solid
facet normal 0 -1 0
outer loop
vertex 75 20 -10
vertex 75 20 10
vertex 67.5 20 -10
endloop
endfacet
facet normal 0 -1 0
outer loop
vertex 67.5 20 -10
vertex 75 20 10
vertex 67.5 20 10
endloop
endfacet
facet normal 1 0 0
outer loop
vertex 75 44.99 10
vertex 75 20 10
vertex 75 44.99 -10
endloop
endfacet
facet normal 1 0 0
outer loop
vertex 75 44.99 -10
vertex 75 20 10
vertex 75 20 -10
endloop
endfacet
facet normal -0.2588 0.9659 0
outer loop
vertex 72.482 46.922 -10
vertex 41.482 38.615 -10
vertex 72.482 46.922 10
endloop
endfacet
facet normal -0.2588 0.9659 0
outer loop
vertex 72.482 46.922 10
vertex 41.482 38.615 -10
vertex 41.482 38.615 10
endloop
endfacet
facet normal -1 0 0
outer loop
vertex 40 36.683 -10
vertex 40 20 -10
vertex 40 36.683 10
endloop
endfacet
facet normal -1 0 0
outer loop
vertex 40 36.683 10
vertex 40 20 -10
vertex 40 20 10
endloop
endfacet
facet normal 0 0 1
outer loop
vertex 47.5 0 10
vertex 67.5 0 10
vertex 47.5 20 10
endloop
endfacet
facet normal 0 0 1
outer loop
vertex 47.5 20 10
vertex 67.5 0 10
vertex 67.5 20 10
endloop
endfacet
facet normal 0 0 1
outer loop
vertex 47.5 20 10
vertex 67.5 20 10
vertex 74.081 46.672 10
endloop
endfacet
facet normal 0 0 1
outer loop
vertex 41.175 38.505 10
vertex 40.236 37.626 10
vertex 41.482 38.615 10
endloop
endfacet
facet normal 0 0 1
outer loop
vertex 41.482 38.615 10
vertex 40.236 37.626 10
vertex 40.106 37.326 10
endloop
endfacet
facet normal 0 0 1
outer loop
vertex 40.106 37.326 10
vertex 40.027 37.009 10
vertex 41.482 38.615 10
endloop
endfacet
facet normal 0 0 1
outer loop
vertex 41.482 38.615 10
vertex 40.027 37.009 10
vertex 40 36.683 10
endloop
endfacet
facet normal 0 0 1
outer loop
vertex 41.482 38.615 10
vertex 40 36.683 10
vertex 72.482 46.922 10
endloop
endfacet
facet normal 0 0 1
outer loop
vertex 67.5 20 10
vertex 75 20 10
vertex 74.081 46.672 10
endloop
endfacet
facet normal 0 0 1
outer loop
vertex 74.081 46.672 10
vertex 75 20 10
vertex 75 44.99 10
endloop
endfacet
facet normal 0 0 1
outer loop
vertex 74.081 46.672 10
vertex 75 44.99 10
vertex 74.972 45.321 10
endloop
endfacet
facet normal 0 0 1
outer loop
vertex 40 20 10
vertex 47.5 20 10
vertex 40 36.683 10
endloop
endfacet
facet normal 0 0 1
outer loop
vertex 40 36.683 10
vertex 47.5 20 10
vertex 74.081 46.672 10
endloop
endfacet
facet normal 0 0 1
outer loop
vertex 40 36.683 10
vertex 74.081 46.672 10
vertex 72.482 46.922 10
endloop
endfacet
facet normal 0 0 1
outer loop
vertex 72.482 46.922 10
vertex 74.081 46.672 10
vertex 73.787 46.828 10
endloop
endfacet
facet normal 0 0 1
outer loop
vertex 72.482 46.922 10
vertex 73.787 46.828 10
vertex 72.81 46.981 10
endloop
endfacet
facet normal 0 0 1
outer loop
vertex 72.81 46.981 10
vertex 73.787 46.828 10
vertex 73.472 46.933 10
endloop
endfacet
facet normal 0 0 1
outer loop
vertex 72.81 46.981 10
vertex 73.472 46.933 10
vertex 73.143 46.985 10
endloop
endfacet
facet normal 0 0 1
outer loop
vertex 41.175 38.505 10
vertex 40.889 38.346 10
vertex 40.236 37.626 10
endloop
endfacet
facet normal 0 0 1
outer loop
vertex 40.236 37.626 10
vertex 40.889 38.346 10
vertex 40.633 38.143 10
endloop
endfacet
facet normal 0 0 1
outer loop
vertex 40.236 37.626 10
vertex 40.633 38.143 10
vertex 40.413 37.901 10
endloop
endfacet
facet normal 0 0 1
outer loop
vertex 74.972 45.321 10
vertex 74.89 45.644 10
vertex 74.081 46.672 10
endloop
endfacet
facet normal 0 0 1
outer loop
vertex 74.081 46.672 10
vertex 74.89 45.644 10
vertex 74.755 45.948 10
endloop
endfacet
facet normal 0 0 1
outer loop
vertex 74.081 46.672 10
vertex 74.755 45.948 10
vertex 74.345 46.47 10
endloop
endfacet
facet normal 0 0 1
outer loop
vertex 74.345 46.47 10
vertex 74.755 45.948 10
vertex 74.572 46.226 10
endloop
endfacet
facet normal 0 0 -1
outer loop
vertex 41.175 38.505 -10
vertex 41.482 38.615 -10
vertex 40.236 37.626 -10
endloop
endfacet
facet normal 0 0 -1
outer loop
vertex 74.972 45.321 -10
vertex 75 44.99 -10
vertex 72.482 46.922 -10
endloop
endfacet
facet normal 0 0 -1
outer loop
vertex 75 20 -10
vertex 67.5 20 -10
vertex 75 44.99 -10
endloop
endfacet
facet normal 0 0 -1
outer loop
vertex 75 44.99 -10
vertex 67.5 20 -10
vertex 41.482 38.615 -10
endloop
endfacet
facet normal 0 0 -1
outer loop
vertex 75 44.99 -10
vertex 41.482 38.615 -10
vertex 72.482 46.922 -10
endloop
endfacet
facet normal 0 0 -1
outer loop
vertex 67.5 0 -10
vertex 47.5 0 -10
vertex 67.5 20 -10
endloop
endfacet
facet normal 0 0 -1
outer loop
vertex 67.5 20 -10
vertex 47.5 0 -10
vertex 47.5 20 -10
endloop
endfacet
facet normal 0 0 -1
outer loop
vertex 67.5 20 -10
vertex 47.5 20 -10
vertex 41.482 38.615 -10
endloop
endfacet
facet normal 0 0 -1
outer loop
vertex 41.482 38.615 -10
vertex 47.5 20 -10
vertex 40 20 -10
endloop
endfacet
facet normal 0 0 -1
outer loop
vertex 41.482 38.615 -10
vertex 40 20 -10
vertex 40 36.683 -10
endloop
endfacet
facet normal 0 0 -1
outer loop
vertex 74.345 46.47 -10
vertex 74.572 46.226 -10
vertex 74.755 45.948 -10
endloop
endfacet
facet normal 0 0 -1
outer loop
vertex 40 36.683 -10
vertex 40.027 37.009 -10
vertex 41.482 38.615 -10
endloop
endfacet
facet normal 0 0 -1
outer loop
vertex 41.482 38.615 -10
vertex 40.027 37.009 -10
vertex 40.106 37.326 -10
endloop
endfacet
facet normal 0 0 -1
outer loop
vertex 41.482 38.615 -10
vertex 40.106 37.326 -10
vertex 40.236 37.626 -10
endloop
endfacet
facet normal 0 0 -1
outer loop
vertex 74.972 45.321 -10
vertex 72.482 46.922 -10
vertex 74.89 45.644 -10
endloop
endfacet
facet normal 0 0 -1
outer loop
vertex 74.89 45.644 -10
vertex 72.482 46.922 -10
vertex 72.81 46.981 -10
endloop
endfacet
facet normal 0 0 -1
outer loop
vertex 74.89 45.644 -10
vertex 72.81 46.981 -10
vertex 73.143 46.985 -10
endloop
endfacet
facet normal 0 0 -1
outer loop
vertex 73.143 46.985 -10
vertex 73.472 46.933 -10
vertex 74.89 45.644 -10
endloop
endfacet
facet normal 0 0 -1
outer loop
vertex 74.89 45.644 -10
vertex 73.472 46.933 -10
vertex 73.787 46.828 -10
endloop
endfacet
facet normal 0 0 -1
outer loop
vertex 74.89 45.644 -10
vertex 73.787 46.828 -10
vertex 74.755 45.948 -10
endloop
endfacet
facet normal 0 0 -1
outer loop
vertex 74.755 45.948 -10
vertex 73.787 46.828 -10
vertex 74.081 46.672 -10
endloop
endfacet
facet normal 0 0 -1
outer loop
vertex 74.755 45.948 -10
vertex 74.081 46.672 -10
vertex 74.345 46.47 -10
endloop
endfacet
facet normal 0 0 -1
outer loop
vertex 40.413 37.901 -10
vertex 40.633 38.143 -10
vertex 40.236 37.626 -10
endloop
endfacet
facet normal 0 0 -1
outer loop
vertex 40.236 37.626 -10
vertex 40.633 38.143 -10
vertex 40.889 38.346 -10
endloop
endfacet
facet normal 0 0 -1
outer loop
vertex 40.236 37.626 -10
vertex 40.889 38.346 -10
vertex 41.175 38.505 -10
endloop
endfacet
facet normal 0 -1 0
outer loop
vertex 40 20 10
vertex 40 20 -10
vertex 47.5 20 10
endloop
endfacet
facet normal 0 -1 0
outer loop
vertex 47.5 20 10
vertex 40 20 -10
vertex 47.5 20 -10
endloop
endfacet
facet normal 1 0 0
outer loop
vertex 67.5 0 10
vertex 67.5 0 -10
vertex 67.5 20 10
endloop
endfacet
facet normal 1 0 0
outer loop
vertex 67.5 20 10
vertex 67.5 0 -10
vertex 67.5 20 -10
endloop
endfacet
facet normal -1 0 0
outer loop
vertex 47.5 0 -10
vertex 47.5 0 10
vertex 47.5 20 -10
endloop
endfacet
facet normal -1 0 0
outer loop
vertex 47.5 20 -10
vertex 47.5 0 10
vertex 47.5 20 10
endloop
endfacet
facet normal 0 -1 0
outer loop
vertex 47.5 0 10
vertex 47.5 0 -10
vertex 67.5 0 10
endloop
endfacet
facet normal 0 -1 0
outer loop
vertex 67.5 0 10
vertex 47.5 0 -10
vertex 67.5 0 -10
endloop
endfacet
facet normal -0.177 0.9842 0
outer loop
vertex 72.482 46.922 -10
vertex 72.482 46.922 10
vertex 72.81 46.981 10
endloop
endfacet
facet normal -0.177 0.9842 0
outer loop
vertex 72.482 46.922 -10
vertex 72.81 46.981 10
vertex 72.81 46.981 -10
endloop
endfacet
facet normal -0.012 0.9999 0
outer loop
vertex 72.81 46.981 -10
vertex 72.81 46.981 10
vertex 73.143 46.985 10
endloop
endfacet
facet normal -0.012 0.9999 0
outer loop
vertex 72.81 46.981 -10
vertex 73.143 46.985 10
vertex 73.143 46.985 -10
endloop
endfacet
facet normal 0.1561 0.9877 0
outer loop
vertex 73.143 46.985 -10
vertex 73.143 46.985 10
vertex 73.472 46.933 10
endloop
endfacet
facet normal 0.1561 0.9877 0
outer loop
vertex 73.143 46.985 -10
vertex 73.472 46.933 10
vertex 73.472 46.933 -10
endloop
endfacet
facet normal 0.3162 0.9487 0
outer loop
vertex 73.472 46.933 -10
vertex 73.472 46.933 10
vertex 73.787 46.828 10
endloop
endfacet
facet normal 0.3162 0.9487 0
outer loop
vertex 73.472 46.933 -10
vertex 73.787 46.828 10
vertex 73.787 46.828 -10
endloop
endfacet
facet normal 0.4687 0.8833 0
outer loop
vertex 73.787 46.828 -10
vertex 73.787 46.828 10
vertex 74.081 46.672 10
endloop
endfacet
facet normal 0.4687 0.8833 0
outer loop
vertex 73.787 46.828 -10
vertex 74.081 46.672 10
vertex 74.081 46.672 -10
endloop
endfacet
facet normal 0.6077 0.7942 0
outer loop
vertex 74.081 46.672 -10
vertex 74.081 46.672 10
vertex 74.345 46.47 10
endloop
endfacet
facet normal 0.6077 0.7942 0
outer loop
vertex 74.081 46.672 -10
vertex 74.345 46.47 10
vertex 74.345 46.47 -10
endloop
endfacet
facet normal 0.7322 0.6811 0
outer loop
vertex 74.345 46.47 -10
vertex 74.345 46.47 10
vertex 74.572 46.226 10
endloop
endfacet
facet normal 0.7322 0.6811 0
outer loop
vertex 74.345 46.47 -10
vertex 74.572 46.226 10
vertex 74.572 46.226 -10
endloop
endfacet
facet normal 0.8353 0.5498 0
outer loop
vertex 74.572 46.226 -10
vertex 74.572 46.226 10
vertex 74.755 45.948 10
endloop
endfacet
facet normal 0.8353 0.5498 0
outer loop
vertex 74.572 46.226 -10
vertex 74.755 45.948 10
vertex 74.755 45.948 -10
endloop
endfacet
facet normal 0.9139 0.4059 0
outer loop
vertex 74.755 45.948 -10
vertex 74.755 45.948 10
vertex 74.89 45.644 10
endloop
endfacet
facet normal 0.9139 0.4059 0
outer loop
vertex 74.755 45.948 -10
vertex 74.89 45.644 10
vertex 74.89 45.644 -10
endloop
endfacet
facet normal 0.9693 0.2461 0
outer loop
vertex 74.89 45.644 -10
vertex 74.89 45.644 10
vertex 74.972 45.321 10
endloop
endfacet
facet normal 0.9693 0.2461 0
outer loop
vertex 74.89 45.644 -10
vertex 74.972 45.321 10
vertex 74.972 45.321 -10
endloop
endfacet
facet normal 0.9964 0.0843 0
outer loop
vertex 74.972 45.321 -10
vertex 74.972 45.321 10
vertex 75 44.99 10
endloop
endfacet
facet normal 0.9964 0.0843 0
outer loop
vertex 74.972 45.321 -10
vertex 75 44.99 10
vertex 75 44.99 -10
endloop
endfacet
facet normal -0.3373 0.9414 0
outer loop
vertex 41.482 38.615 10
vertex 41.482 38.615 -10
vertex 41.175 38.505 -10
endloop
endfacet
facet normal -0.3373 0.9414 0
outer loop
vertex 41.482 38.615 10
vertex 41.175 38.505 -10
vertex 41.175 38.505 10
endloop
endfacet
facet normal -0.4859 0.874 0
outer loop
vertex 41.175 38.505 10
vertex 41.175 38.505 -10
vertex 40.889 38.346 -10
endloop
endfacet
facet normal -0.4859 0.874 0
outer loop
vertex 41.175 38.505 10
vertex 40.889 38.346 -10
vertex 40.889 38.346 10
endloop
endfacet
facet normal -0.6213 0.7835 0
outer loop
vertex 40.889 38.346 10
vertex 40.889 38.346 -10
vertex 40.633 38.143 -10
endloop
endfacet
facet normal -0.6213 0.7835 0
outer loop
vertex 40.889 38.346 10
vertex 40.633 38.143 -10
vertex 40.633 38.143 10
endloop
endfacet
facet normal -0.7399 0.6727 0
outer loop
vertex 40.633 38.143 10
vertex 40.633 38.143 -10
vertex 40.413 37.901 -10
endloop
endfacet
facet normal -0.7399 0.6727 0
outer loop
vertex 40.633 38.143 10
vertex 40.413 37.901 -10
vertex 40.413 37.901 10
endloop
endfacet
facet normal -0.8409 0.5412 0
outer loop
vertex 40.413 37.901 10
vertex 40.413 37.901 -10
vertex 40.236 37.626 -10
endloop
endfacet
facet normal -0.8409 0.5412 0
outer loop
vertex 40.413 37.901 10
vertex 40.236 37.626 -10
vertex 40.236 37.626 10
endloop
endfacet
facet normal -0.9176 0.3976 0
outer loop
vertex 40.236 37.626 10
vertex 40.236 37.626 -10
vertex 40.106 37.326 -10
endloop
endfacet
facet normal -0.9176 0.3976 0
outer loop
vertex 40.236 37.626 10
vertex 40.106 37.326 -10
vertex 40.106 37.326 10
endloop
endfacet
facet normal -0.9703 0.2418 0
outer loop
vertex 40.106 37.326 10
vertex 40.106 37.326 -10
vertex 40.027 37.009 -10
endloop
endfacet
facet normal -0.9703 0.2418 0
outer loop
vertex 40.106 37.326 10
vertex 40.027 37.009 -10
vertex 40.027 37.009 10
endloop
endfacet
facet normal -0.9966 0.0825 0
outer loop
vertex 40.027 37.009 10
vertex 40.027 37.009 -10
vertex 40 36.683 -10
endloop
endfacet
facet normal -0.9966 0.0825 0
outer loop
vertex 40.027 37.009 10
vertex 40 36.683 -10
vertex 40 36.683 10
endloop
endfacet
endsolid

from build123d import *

# Parameters (mm, degrees)
SKETCH2_W           = 150
SKETCH2_H           = 60
EXTRUDE1_DEPTH      = 20
SKETCH3_W           = 20.4
SKETCH3_H           = 20.4
EXTRUDE2_DEPTH      = 20
EXTRUDE3_DEPTH      = 10
EXTRUDE4_DEPTH      = 98.418669917
EXTRUDE4_DEPTH_BACK = 98.418669917
SKETCH5_W           = 75
SKETCH5_H           = 27.596189432
SKETCH6_W           = 20
SKETCH6_H           = 20
EXTRUDE5_DEPTH      = 20
FILLET1_R           = 2


with BuildPart() as part:
    # Sketch2 → Extrude1 (new body)
    with BuildSketch(Plane(origin=(0, 0, 0), x_dir=(1, 0, 0), z_dir=(0, 1, 0))):
        Rectangle(SKETCH2_W, SKETCH2_H)
    extrude(amount=EXTRUDE1_DEPTH)

    # Sketch3 → Extrude2 (cut)
    with BuildSketch(Plane(origin=(0, 20, 0), x_dir=(1, 0, 0), z_dir=(0, 1, 0))):
        with Locations((0, 12.9)):
            Rectangle(SKETCH3_W, SKETCH3_H)
        with Locations((0, -12.9)):
            Rectangle(SKETCH3_W, SKETCH3_H)
    extrude(amount=-EXTRUDE2_DEPTH, mode=Mode.SUBTRACT)

    # Sketch4 → Extrude3 (add, symmetric)
    with BuildSketch(Plane.XY):
        Polygon((-75, 20), (-75, 47.596189432), (-40, 38.217967697), (-40, 20), align=None)
    extrude3 = extrude(amount=EXTRUDE3_DEPTH, both=True)

    # Mirror1: Extrude3 across plane
    add(extrude3.mirror(Plane(origin=(0, 0, 0), x_dir=(0, 0, 1), z_dir=(1, 0, 0))))

    # Sketch5 → Extrude4 (cut, two sides: drawn at the far end of the back side and taken through both)
    with BuildSketch(Plane(origin=(0, 0, -10), x_dir=(-1, 0, 0), z_dir=(0, 0, -1)).offset(-EXTRUDE4_DEPTH_BACK)):
        Polygon((-40, 20), (-75, 20), (-75, 0), (75, 0), (75, 20), (0, 20), align=None)
        with Locations((37.5, 33.798094716)):
            Rectangle(SKETCH5_W, SKETCH5_H)
    extrude(amount=EXTRUDE4_DEPTH + EXTRUDE4_DEPTH_BACK, mode=Mode.SUBTRACT)

    # Sketch6 → Extrude5 (add)
    with BuildSketch(Plane.XZ.offset(-20)):
        with Locations((57.5, 0)):
            Rectangle(SKETCH6_W, SKETCH6_H)
    extrude(amount=EXTRUDE5_DEPTH)

    # Fillet1
    fillet1_edges = [part.edges().sort_by_distance(p)[0] for p in [
        (75, 47.596189432, 0),
        (40, 38.217967697, 0),
    ]]
    fillet(fillet1_edges, radius=FILLET1_R)


solid = part.part
